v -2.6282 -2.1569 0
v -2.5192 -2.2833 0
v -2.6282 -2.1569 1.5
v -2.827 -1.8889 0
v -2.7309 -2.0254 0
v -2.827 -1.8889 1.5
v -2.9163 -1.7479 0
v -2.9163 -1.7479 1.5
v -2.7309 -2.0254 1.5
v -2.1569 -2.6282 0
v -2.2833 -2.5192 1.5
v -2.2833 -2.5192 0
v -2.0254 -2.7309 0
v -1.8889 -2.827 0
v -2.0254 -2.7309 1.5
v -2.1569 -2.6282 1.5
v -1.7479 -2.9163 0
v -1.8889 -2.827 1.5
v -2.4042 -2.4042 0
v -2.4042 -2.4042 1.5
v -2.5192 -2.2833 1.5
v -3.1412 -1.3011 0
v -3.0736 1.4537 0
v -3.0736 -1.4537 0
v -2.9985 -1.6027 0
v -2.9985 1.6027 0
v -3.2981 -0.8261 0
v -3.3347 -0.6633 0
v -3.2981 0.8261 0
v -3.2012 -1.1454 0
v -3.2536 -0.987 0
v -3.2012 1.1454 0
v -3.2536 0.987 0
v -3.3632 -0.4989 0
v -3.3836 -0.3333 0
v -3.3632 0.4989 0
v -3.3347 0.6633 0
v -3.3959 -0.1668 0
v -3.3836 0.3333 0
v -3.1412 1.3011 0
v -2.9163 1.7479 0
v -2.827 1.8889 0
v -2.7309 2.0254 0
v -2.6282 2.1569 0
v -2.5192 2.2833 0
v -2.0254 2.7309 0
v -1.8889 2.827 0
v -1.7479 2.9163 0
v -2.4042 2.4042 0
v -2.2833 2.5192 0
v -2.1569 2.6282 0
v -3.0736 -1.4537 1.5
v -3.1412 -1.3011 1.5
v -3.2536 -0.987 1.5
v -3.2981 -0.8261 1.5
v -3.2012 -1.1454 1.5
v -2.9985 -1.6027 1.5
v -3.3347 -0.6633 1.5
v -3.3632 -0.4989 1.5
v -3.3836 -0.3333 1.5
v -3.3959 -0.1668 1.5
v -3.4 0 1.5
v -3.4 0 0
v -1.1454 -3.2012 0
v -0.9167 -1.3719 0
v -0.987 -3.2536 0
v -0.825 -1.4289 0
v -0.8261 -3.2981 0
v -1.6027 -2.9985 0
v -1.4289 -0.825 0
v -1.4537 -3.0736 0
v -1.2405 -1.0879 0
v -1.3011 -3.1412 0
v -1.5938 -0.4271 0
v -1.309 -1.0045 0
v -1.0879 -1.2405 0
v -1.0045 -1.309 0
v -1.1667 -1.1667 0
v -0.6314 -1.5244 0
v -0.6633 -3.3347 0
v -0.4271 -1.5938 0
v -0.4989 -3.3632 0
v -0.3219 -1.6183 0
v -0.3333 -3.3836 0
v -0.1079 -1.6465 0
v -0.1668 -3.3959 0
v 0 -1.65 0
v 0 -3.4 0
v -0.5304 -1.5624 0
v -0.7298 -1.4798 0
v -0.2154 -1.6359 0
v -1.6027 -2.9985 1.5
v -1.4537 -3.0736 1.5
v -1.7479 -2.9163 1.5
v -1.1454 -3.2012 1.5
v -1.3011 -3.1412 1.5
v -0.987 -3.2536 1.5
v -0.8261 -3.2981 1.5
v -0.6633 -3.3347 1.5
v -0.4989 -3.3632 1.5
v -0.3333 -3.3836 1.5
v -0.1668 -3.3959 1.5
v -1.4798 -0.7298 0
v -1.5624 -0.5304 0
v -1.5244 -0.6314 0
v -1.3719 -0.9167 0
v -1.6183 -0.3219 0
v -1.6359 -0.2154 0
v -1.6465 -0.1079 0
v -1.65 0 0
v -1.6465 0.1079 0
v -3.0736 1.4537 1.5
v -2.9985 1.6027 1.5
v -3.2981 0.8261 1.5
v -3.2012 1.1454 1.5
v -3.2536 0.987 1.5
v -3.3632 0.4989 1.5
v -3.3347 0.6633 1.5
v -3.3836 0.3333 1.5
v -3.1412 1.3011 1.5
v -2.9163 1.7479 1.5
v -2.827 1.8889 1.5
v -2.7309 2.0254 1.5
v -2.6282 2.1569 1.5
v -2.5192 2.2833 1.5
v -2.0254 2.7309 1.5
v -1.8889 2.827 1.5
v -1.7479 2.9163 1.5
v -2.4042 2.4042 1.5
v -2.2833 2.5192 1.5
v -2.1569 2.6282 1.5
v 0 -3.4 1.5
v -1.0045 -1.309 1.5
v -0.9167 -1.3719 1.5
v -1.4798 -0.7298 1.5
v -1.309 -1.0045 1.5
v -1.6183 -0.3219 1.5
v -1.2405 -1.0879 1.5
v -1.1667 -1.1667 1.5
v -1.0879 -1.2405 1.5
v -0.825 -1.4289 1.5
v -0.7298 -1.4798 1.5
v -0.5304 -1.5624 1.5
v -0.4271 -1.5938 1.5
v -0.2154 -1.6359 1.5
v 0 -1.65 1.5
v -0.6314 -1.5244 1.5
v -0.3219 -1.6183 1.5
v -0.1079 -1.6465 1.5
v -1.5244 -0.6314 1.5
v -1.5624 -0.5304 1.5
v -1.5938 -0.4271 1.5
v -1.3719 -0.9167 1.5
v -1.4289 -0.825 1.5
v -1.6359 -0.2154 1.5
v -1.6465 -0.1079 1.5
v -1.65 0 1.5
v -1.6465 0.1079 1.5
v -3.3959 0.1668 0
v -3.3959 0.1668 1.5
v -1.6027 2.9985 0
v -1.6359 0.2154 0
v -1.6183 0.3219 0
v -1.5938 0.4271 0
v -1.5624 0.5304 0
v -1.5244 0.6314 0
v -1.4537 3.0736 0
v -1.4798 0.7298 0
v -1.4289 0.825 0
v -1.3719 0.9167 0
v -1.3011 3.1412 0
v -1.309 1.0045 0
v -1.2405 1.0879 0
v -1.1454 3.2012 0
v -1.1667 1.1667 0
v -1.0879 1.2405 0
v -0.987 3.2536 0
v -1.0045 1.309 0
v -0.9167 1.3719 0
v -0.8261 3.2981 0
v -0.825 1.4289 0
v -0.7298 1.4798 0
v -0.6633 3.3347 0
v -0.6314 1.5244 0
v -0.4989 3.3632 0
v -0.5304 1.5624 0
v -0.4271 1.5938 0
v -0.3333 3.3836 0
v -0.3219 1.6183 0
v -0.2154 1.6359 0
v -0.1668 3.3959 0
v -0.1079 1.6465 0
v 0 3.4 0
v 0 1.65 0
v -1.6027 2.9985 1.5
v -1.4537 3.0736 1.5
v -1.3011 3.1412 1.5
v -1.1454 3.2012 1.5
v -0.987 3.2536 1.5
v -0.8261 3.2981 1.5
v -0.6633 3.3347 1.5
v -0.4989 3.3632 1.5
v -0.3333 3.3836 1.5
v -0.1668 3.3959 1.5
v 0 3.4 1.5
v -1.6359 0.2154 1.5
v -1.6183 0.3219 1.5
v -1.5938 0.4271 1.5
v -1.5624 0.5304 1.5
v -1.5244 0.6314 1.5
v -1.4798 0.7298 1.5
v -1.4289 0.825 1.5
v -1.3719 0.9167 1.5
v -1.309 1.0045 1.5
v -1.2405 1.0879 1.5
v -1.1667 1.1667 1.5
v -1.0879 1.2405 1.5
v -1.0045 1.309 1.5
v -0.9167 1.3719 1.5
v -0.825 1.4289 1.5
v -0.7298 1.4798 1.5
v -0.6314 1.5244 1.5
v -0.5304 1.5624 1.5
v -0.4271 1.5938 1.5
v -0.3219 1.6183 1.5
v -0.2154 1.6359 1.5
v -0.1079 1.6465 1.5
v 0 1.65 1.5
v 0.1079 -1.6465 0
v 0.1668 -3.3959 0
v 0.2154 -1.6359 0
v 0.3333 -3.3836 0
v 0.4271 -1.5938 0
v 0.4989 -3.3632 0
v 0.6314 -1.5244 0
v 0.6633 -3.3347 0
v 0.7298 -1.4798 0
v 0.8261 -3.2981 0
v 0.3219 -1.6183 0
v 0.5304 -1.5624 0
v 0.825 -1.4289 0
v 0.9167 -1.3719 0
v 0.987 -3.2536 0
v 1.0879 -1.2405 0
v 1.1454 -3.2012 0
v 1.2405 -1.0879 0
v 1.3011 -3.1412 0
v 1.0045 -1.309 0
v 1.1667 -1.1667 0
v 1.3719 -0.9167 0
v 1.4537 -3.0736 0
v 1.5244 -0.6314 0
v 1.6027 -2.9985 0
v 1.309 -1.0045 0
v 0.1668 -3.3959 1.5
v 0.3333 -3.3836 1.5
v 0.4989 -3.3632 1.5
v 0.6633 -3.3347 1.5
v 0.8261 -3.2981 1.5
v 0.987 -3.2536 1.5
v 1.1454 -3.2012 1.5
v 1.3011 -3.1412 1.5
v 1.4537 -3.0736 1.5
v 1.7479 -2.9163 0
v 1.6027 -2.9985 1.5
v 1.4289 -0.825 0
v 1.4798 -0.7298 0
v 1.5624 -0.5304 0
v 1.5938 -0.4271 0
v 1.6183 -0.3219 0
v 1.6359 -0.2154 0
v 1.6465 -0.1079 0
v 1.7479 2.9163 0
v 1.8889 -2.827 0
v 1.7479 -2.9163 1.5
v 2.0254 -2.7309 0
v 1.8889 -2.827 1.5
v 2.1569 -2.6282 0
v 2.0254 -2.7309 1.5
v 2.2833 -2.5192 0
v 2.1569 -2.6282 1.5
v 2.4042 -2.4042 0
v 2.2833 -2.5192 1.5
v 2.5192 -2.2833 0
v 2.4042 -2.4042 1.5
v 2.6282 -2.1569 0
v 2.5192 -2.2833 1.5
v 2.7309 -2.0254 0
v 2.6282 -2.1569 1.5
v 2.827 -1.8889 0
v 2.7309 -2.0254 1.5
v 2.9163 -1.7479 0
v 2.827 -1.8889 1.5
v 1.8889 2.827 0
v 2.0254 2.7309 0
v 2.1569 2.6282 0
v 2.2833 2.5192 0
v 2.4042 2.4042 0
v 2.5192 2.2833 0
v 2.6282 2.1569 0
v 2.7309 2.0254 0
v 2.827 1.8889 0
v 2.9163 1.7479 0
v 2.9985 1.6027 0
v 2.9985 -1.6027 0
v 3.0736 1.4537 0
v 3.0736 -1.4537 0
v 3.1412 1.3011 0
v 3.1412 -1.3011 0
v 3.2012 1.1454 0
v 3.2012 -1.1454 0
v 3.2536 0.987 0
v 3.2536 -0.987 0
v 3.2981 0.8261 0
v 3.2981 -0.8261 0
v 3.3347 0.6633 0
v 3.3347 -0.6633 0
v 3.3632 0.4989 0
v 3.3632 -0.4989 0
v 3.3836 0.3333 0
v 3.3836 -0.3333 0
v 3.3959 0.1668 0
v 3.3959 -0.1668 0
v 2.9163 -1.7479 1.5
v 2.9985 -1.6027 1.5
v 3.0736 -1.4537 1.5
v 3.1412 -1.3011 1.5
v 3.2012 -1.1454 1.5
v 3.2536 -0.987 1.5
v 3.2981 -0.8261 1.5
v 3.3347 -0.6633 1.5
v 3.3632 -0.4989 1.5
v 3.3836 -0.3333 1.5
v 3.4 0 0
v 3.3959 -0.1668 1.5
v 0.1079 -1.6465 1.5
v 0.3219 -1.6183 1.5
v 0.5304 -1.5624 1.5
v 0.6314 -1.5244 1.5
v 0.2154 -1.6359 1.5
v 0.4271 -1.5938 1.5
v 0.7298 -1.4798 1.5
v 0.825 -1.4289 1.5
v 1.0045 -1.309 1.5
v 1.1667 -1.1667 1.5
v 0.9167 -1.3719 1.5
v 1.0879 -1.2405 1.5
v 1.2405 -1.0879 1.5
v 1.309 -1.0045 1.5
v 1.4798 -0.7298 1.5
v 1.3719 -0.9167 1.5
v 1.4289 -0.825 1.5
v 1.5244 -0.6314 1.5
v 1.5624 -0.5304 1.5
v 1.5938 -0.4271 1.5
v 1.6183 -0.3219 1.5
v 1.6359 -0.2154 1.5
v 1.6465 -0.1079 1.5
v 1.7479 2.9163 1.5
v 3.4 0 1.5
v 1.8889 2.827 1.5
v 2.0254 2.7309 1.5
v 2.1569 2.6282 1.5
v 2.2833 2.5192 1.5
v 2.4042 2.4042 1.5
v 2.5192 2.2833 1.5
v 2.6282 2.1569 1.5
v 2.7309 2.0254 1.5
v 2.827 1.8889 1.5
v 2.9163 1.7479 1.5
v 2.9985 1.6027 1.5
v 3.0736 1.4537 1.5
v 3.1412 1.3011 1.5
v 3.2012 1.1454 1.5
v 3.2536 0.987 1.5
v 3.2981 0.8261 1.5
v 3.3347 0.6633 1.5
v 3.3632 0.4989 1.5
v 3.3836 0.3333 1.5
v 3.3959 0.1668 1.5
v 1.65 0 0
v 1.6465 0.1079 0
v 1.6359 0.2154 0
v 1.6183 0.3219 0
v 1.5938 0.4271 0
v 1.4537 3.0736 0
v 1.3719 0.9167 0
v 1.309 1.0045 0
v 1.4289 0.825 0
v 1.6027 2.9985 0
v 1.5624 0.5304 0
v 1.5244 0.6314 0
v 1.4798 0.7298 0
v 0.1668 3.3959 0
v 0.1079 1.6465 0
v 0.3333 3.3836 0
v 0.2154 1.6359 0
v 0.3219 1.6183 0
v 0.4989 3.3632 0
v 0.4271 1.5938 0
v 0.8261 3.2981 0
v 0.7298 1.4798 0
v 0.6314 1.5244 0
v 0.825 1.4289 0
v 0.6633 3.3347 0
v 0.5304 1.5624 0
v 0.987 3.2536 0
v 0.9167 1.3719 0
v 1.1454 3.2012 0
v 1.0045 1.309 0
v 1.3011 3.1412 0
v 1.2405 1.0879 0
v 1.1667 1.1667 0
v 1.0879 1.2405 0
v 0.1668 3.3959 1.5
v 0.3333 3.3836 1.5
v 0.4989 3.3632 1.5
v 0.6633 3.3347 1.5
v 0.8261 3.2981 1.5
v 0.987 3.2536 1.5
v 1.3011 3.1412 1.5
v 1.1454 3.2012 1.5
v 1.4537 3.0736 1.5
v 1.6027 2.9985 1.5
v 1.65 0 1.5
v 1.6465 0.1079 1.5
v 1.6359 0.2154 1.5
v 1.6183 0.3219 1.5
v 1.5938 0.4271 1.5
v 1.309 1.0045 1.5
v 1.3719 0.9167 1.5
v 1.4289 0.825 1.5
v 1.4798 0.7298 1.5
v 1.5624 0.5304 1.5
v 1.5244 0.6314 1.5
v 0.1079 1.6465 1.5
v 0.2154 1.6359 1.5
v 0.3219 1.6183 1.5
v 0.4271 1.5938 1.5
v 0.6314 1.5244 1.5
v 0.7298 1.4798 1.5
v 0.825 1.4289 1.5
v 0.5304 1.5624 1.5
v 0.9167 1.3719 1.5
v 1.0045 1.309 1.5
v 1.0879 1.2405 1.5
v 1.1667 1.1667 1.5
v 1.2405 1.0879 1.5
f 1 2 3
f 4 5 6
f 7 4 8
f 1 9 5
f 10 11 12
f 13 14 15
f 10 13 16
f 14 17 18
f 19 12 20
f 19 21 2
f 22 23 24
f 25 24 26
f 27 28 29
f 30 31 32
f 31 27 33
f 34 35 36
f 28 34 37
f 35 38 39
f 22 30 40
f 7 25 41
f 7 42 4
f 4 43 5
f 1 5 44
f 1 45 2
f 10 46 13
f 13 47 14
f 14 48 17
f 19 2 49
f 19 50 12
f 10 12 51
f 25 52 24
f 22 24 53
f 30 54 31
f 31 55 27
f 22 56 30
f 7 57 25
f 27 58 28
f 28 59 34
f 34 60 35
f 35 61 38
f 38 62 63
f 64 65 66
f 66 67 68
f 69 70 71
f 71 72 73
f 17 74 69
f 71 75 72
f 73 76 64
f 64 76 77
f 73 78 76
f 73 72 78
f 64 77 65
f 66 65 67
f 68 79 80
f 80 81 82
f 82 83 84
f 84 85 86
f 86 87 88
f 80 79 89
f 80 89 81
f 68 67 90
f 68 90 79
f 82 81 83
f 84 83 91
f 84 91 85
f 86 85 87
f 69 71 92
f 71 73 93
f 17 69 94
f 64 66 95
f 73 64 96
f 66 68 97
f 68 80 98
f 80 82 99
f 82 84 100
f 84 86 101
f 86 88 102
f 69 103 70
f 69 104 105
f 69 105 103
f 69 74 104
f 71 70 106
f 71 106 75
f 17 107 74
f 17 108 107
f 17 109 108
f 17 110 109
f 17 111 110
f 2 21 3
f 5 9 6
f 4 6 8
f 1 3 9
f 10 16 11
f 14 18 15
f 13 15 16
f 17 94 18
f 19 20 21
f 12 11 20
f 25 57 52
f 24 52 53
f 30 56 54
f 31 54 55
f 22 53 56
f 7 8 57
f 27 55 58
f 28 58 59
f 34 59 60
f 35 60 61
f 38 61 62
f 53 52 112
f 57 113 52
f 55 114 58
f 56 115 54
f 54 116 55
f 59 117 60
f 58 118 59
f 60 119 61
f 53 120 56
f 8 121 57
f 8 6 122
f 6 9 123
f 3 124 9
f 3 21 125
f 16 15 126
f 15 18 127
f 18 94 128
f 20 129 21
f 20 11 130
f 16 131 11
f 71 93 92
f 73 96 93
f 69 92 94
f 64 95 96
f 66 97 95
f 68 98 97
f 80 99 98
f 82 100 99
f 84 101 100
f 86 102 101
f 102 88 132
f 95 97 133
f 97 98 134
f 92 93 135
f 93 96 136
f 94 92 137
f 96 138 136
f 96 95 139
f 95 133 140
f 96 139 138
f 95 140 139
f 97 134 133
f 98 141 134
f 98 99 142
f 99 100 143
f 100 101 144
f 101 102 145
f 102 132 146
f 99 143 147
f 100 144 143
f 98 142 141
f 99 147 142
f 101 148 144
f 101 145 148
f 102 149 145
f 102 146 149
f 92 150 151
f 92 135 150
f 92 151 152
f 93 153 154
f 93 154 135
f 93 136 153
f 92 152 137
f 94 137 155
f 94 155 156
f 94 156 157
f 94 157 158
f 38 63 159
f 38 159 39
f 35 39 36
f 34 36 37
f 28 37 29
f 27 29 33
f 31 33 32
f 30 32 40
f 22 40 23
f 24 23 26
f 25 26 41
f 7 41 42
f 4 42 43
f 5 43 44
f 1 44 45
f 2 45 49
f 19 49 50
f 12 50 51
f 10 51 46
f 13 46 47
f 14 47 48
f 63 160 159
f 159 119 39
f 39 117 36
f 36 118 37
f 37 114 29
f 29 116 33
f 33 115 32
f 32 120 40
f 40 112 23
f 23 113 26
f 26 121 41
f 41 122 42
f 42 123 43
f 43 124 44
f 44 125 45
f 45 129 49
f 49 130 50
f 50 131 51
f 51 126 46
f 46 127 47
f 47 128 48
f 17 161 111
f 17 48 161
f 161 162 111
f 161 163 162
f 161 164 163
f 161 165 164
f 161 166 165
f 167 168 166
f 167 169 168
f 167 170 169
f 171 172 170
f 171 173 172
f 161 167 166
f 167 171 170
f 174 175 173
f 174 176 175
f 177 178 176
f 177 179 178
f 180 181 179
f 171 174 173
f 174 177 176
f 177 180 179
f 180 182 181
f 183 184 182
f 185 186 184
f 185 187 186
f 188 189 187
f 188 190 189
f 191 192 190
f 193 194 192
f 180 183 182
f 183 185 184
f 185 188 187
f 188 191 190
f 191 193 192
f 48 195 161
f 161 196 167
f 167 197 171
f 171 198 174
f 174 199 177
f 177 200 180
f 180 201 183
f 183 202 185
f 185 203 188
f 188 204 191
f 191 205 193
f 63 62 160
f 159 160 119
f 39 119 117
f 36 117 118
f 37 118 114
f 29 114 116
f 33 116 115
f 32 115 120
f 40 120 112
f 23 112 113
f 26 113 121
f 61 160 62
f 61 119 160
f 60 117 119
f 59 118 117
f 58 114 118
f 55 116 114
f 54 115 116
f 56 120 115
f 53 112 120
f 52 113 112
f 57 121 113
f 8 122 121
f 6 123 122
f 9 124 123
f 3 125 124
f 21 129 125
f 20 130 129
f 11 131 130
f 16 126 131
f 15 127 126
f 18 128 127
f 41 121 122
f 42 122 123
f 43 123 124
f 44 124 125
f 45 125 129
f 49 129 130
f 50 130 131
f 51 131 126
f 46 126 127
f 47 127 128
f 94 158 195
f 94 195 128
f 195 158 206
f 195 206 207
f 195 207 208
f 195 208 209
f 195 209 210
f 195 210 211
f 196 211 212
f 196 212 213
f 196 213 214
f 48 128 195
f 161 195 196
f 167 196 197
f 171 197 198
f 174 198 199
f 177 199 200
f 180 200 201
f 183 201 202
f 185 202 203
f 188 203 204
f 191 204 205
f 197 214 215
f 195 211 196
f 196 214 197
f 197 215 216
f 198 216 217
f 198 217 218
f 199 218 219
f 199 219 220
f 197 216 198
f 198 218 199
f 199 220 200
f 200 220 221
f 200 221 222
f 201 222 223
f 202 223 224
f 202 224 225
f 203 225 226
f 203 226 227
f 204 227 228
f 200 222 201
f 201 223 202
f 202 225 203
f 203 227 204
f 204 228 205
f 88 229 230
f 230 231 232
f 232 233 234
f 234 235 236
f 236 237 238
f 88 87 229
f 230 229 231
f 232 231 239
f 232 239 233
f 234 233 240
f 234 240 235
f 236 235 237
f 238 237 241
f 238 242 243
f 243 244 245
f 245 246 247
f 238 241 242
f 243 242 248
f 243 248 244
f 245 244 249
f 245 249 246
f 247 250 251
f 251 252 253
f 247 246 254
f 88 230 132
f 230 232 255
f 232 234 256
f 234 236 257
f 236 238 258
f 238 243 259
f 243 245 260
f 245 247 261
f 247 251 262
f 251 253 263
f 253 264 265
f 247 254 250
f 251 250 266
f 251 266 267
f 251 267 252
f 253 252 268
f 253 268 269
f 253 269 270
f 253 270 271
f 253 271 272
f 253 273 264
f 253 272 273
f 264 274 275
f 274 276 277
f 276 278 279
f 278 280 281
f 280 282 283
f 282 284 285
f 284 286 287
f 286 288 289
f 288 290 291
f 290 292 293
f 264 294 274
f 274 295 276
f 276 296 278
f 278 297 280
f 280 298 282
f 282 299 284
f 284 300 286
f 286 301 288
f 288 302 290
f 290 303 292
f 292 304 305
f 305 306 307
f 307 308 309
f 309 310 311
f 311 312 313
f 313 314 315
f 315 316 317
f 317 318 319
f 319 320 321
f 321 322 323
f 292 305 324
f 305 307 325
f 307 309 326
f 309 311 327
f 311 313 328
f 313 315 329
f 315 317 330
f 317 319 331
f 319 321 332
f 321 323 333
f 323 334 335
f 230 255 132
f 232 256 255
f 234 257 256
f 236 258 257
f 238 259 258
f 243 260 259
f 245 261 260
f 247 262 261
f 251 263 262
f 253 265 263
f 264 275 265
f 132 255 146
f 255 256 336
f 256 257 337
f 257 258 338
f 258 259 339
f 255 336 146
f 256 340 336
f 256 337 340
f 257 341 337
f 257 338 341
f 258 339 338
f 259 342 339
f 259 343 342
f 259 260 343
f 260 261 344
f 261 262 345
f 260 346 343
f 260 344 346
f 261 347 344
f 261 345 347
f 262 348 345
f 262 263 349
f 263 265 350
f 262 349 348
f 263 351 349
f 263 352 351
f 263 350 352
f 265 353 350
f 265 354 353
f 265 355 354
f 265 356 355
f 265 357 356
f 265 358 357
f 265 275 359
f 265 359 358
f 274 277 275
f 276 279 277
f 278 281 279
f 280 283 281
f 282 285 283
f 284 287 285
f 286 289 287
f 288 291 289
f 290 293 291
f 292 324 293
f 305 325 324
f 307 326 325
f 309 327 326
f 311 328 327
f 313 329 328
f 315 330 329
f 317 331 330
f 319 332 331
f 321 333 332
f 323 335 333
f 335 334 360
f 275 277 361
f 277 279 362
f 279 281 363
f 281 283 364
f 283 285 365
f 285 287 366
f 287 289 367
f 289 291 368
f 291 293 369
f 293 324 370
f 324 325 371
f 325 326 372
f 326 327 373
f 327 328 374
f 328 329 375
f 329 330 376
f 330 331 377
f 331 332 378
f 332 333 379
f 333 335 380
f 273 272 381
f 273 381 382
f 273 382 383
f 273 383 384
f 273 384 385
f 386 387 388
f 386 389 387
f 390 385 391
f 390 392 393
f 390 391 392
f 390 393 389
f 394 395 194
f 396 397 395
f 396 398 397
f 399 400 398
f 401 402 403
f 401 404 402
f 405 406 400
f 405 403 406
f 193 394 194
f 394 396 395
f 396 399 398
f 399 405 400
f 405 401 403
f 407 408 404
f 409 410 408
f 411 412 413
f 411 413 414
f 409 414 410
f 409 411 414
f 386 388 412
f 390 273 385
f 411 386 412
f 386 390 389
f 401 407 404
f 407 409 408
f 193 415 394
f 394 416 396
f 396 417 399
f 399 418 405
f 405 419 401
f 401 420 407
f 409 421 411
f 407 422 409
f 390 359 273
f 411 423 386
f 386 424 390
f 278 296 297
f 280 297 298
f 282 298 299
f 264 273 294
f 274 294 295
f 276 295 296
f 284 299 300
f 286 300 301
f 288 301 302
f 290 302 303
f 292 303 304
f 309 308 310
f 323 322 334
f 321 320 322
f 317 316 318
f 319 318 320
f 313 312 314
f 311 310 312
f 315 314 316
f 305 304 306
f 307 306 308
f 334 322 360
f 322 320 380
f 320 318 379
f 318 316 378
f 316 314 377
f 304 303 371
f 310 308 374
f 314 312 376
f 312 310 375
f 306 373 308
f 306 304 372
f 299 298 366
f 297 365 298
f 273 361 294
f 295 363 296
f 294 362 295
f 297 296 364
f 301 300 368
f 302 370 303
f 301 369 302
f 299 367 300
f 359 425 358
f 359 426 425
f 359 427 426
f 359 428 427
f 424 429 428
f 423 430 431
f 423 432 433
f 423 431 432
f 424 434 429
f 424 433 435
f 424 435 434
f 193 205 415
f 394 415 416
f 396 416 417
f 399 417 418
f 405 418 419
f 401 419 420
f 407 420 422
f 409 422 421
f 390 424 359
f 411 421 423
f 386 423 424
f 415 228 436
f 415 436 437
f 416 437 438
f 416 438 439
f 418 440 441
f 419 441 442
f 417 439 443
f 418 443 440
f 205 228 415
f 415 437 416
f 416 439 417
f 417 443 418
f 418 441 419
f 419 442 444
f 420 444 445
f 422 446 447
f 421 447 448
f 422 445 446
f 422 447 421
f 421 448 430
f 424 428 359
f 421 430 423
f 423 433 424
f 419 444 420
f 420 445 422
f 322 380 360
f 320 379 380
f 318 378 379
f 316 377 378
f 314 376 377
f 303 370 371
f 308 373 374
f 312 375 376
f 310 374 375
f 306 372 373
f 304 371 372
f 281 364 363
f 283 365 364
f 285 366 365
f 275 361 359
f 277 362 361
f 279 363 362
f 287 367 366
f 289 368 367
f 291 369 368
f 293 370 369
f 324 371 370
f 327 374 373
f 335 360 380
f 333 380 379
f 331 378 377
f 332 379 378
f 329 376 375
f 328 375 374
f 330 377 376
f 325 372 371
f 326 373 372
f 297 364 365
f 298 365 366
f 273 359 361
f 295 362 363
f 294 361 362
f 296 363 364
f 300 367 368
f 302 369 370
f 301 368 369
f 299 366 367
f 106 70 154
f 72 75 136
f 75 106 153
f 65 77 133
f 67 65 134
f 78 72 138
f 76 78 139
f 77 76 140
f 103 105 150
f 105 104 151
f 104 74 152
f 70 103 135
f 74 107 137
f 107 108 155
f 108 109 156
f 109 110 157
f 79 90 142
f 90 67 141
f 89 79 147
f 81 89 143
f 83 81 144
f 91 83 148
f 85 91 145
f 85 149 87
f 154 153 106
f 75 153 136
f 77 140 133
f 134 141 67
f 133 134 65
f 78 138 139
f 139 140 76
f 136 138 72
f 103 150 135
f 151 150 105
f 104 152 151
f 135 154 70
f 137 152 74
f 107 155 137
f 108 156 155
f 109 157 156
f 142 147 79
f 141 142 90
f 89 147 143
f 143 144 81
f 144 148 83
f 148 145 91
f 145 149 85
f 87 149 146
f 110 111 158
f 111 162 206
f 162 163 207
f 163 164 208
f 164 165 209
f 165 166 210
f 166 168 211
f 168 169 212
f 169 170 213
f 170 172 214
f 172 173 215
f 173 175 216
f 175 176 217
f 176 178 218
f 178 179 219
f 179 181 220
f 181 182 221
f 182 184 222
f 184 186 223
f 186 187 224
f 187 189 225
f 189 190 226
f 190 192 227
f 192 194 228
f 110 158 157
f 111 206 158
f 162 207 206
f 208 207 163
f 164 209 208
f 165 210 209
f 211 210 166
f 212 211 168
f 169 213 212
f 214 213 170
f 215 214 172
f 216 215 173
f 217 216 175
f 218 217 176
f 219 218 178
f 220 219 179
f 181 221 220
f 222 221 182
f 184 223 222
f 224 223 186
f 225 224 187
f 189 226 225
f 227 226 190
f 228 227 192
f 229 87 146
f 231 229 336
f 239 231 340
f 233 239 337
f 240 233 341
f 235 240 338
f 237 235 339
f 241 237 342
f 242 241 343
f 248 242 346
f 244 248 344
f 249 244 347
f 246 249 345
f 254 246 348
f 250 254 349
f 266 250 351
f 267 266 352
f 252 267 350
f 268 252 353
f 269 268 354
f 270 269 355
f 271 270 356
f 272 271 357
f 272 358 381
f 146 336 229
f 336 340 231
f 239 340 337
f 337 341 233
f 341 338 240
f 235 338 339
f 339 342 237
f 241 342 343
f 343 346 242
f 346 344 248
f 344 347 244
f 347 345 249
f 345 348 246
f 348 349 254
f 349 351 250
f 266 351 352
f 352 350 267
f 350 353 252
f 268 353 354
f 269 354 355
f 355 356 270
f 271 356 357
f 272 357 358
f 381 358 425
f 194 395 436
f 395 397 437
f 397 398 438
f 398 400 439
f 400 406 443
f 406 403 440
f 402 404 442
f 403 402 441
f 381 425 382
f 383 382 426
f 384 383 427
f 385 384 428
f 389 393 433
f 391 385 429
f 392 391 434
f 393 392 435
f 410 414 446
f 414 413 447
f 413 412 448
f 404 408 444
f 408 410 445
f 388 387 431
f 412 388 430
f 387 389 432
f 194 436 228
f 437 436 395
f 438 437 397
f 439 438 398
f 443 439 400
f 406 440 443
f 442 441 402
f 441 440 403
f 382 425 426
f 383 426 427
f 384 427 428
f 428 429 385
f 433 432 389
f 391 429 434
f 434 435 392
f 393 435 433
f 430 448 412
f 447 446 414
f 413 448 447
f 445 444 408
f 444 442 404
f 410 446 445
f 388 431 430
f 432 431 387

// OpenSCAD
// POV 3D 平垫圈 washer_m3_6p8x1p5  (2026-09-07)
// 圆环片: 外径 6.8 / 内径 3.3 (M3 过孔) / 厚 1.5。
// 与 build_stl.py 的参数必须一致 (本文件是复刻不是 import)。

od    = 6.8;    // 外径
id    = 3.3;    // 内径 (M3 螺杆过孔)
thick = 1.5;    // 厚度

module washer_m3_6p8x1p5() {
    difference() {
        cylinder(h = thick, d = od, $fn = 128);
        translate([0, 0, -1])
            cylinder(h = thick + 2, d = id, $fn = 96);
    }
}

washer_m3_6p8x1p5();
